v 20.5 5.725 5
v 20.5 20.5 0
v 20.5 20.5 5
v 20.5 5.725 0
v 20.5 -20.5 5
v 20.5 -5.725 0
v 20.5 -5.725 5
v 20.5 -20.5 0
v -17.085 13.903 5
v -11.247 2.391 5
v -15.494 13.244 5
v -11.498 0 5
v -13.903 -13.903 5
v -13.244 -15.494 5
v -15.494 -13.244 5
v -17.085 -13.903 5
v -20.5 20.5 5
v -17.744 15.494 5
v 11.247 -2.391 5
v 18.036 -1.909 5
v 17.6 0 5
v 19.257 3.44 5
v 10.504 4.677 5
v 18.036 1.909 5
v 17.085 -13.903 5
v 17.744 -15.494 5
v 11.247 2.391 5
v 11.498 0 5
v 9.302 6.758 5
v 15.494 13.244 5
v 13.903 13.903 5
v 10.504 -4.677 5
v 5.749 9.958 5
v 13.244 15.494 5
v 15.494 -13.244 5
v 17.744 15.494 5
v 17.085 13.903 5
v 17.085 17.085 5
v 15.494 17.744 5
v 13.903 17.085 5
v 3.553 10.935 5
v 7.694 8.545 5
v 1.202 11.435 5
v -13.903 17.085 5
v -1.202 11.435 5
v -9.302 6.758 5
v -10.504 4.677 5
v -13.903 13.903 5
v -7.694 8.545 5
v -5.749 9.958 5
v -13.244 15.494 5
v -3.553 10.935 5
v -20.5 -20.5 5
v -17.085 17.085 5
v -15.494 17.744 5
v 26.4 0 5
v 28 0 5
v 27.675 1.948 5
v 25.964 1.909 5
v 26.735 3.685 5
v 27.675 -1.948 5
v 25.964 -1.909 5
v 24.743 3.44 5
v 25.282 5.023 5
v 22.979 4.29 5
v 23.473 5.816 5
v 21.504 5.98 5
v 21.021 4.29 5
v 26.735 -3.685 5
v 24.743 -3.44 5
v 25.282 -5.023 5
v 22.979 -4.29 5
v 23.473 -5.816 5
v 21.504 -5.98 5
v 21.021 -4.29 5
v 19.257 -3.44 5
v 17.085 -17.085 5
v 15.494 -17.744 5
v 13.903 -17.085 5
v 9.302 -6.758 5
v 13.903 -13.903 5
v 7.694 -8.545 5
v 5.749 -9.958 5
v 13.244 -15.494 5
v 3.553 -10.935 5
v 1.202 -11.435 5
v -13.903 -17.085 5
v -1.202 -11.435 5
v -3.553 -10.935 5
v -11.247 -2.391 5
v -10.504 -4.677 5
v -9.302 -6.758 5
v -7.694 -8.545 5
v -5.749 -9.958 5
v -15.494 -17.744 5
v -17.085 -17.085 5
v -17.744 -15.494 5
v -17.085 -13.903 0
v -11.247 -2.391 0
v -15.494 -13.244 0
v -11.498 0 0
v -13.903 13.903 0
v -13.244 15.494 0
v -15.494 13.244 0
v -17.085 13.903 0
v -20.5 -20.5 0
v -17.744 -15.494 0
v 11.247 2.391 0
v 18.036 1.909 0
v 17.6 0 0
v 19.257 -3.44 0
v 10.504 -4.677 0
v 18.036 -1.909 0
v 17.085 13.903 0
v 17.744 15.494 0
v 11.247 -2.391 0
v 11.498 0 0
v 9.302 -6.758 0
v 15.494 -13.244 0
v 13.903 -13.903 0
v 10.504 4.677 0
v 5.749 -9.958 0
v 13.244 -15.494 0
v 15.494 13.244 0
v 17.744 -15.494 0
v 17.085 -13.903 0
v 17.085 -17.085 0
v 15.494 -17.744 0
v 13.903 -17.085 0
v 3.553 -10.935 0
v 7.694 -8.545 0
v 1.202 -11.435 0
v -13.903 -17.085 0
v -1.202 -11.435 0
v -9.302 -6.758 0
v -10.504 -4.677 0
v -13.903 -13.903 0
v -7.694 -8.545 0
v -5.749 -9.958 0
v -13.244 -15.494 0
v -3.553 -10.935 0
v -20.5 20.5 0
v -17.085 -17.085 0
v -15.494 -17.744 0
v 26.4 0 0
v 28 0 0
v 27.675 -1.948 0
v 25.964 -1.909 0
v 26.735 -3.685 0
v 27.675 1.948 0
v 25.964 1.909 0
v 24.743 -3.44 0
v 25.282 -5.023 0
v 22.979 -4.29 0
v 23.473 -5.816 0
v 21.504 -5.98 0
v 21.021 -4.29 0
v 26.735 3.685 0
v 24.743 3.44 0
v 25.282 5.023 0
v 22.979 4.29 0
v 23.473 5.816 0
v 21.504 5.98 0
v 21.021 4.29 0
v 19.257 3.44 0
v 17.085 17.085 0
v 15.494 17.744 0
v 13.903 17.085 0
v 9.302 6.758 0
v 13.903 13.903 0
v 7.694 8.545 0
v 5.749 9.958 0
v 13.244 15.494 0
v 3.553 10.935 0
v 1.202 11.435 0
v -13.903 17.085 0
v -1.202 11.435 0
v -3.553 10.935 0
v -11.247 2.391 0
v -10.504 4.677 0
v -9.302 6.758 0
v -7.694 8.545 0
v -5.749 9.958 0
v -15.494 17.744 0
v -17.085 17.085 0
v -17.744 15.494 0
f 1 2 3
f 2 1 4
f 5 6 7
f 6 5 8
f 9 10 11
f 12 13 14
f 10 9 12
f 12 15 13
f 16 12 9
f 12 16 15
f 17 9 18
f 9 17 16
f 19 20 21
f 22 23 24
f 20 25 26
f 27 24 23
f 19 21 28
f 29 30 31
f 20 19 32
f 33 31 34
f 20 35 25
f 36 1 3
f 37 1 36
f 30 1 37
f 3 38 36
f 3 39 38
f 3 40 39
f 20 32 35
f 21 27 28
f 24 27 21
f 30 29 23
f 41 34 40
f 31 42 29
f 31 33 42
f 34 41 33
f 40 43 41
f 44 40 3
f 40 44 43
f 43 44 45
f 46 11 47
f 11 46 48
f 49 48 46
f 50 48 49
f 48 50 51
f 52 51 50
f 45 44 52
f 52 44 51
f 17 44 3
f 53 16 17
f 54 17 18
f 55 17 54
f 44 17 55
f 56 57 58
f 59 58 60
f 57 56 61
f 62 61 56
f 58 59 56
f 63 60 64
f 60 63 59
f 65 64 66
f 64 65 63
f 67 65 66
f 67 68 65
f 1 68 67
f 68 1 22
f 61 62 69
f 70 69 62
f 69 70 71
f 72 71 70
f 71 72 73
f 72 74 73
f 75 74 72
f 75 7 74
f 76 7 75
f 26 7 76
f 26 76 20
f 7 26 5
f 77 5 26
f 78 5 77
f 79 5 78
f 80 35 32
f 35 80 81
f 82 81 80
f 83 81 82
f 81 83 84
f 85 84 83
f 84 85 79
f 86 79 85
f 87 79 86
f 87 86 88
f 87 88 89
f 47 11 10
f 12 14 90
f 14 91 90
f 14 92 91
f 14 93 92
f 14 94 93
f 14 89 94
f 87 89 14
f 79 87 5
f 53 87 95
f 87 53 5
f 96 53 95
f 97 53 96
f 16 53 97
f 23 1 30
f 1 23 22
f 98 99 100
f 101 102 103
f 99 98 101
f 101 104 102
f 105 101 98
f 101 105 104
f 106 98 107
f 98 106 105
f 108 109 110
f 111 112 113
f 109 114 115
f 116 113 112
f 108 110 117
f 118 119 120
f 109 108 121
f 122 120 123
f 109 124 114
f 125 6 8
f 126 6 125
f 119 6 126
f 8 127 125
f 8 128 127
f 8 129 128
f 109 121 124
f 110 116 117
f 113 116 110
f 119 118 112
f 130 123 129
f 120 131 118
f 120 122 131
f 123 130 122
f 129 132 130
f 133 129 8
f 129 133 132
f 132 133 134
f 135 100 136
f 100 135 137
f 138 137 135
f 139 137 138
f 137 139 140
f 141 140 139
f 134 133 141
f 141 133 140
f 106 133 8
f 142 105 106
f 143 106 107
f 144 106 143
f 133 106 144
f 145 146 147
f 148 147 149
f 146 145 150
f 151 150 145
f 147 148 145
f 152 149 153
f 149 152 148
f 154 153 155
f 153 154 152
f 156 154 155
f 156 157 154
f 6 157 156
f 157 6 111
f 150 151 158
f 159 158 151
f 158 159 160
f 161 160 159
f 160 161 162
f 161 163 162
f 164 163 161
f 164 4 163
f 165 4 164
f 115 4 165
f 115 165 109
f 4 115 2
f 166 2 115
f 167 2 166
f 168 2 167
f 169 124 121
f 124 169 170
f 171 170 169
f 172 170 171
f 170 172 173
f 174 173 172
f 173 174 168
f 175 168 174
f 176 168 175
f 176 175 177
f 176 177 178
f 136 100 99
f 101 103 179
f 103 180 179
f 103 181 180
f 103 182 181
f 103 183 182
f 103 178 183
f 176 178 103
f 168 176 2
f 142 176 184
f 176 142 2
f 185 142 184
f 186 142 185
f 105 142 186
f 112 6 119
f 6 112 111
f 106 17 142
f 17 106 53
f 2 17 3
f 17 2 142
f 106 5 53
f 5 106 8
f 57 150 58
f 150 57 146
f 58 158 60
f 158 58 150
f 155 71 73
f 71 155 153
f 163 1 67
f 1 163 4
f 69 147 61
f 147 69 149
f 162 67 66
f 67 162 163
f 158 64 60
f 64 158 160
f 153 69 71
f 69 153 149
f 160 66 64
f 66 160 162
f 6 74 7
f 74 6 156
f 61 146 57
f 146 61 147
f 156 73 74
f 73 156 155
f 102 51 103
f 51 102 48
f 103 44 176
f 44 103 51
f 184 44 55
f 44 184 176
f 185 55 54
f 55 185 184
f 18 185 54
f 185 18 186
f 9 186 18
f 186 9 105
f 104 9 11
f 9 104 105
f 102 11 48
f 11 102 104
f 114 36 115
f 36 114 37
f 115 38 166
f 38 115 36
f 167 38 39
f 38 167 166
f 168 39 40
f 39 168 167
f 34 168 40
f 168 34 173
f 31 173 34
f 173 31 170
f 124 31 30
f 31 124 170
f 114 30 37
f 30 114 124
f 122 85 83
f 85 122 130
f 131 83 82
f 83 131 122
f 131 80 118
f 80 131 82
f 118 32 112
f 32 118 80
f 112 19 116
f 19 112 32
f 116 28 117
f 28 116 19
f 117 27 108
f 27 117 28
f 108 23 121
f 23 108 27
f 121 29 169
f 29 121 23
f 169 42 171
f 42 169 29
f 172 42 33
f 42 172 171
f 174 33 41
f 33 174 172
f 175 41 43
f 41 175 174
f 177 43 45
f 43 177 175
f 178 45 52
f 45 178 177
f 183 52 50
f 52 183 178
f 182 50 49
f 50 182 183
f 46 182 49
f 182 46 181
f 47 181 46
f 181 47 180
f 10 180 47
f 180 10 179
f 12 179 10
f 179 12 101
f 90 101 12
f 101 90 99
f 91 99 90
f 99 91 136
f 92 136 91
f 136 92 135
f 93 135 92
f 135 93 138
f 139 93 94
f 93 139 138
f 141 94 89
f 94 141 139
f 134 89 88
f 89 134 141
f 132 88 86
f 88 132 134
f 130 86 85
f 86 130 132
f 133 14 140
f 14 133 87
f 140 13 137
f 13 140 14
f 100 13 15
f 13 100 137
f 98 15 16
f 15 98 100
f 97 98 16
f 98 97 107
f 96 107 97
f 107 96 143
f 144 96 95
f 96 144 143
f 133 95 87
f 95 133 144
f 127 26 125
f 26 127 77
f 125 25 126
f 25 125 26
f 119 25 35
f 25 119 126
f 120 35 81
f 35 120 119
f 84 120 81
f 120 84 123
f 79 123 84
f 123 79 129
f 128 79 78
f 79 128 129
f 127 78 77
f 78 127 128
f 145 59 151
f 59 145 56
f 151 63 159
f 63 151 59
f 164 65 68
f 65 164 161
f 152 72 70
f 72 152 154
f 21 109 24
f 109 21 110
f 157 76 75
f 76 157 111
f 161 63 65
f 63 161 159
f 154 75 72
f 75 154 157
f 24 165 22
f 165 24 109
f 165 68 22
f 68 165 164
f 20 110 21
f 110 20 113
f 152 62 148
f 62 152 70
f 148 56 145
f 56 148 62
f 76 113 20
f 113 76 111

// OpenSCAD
include <MCAD/motors.scad>;

difference(){
union(){
translate([0,0,2.5])
cube([41,41,5],center=true);
translate([22,0,0])
cylinder(r=6,h=5);
}
translate([0,0,0])
linear_extrude(height=10){
stepper_motor_mount(17,0,false,0.5);
}    

translate([22,0,0])    
cylinder(h=20,r=4.4);
}
